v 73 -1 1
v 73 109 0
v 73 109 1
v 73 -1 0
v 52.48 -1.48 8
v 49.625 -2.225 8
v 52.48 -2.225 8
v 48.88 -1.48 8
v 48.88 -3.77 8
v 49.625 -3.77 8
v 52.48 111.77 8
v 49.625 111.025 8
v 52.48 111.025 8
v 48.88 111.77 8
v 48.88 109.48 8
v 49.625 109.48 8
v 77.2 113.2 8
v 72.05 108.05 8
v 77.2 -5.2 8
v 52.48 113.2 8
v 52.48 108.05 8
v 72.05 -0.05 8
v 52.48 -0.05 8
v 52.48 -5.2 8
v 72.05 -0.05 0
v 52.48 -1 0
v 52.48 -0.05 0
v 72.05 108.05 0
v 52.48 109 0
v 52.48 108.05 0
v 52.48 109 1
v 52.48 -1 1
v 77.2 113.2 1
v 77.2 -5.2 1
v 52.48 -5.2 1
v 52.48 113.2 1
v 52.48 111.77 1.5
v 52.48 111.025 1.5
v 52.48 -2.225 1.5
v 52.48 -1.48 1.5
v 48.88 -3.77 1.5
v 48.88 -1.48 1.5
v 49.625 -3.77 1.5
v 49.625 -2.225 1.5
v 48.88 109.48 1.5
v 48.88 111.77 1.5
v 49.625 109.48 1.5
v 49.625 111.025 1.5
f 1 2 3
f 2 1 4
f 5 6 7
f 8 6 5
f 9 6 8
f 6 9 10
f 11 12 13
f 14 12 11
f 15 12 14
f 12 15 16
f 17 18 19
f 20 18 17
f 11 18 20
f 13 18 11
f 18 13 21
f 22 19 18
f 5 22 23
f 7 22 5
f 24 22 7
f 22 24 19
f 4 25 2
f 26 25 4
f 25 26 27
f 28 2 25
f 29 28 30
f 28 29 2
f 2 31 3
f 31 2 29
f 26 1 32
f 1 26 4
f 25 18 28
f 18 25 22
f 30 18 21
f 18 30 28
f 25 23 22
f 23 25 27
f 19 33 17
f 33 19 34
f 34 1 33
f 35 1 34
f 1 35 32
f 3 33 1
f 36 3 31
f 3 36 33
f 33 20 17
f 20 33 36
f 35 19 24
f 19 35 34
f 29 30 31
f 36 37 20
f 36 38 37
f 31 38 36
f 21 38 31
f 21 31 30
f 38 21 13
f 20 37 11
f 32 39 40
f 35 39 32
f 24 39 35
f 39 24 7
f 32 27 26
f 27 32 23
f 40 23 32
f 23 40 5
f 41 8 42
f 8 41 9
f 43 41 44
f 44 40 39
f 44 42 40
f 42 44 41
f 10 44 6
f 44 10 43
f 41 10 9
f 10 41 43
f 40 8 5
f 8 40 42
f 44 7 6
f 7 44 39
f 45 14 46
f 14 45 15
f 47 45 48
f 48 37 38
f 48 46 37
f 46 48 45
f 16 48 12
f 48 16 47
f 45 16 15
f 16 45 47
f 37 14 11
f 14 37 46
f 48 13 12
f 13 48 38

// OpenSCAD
// Generated by SolidPython 1.0.4 on 2021-01-27 23:57:27


union() {
	union() {
		difference() {
			union() {
				difference() {
					translate(v = [-1.0000000000, -1.0000000000, 0]) {
						cube(size = [74.0000000000, 110.0000000000, 8]);
					}
					translate(v = [-0.0500000000, -0.0500000000, 0]) {
						cube(size = [72.1000000000, 108.1000000000, 8]);
					}
				}
				translate(v = [0, 0, 1]) {
					difference() {
						translate(v = [-5.2000000000, -5.2000000000, 0]) {
							cube(size = [82.4000000000, 118.4000000000, 7]);
						}
						translate(v = [-1.0000000000, -1.0000000000, 0]) {
							cube(size = [74.0000000000, 110.0000000000, 7]);
						}
					}
				}
			}
			translate(v = [-5.2000000000, -5.2000000000, 0]) {
				cube(size = [57.6800000000, 118.4000000000, 8]);
			}
		}
		translate(v = [48.4800000000, -4.1700000000, 0]) {
			translate(v = [0.4000000000, 0.4000000000, 0]) {
				translate(v = [0, 0, 1.5000000000]) {
					translate(v = [3.6000000000, 2.2900000000, 0]) {
						rotate(a = -180) {
							union() {
								translate(v = [2.8550000000, 0, 0]) {
									cube(size = [0.7450000000, 2.2900000000, 6.5000000000]);
								}
								cube(size = [3.6000000000, 0.7450000000, 6.5000000000]);
							}
						}
					}
				}
			}
		}
	}
	translate(v = [48.4800000000, 109.0800000000, 0]) {
		translate(v = [0.4000000000, 0.4000000000, 0]) {
			translate(v = [0, 0, 1.5000000000]) {
				translate(v = [3.6000000000, 2.2900000000, 0]) {
					rotate(a = -180) {
						union() {
							translate(v = [2.8550000000, 0, 0]) {
								cube(size = [0.7450000000, 2.2900000000, 6.5000000000]);
							}
							cube(size = [3.6000000000, 0.7450000000, 6.5000000000]);
						}
					}
				}
			}
		}
	}
}
